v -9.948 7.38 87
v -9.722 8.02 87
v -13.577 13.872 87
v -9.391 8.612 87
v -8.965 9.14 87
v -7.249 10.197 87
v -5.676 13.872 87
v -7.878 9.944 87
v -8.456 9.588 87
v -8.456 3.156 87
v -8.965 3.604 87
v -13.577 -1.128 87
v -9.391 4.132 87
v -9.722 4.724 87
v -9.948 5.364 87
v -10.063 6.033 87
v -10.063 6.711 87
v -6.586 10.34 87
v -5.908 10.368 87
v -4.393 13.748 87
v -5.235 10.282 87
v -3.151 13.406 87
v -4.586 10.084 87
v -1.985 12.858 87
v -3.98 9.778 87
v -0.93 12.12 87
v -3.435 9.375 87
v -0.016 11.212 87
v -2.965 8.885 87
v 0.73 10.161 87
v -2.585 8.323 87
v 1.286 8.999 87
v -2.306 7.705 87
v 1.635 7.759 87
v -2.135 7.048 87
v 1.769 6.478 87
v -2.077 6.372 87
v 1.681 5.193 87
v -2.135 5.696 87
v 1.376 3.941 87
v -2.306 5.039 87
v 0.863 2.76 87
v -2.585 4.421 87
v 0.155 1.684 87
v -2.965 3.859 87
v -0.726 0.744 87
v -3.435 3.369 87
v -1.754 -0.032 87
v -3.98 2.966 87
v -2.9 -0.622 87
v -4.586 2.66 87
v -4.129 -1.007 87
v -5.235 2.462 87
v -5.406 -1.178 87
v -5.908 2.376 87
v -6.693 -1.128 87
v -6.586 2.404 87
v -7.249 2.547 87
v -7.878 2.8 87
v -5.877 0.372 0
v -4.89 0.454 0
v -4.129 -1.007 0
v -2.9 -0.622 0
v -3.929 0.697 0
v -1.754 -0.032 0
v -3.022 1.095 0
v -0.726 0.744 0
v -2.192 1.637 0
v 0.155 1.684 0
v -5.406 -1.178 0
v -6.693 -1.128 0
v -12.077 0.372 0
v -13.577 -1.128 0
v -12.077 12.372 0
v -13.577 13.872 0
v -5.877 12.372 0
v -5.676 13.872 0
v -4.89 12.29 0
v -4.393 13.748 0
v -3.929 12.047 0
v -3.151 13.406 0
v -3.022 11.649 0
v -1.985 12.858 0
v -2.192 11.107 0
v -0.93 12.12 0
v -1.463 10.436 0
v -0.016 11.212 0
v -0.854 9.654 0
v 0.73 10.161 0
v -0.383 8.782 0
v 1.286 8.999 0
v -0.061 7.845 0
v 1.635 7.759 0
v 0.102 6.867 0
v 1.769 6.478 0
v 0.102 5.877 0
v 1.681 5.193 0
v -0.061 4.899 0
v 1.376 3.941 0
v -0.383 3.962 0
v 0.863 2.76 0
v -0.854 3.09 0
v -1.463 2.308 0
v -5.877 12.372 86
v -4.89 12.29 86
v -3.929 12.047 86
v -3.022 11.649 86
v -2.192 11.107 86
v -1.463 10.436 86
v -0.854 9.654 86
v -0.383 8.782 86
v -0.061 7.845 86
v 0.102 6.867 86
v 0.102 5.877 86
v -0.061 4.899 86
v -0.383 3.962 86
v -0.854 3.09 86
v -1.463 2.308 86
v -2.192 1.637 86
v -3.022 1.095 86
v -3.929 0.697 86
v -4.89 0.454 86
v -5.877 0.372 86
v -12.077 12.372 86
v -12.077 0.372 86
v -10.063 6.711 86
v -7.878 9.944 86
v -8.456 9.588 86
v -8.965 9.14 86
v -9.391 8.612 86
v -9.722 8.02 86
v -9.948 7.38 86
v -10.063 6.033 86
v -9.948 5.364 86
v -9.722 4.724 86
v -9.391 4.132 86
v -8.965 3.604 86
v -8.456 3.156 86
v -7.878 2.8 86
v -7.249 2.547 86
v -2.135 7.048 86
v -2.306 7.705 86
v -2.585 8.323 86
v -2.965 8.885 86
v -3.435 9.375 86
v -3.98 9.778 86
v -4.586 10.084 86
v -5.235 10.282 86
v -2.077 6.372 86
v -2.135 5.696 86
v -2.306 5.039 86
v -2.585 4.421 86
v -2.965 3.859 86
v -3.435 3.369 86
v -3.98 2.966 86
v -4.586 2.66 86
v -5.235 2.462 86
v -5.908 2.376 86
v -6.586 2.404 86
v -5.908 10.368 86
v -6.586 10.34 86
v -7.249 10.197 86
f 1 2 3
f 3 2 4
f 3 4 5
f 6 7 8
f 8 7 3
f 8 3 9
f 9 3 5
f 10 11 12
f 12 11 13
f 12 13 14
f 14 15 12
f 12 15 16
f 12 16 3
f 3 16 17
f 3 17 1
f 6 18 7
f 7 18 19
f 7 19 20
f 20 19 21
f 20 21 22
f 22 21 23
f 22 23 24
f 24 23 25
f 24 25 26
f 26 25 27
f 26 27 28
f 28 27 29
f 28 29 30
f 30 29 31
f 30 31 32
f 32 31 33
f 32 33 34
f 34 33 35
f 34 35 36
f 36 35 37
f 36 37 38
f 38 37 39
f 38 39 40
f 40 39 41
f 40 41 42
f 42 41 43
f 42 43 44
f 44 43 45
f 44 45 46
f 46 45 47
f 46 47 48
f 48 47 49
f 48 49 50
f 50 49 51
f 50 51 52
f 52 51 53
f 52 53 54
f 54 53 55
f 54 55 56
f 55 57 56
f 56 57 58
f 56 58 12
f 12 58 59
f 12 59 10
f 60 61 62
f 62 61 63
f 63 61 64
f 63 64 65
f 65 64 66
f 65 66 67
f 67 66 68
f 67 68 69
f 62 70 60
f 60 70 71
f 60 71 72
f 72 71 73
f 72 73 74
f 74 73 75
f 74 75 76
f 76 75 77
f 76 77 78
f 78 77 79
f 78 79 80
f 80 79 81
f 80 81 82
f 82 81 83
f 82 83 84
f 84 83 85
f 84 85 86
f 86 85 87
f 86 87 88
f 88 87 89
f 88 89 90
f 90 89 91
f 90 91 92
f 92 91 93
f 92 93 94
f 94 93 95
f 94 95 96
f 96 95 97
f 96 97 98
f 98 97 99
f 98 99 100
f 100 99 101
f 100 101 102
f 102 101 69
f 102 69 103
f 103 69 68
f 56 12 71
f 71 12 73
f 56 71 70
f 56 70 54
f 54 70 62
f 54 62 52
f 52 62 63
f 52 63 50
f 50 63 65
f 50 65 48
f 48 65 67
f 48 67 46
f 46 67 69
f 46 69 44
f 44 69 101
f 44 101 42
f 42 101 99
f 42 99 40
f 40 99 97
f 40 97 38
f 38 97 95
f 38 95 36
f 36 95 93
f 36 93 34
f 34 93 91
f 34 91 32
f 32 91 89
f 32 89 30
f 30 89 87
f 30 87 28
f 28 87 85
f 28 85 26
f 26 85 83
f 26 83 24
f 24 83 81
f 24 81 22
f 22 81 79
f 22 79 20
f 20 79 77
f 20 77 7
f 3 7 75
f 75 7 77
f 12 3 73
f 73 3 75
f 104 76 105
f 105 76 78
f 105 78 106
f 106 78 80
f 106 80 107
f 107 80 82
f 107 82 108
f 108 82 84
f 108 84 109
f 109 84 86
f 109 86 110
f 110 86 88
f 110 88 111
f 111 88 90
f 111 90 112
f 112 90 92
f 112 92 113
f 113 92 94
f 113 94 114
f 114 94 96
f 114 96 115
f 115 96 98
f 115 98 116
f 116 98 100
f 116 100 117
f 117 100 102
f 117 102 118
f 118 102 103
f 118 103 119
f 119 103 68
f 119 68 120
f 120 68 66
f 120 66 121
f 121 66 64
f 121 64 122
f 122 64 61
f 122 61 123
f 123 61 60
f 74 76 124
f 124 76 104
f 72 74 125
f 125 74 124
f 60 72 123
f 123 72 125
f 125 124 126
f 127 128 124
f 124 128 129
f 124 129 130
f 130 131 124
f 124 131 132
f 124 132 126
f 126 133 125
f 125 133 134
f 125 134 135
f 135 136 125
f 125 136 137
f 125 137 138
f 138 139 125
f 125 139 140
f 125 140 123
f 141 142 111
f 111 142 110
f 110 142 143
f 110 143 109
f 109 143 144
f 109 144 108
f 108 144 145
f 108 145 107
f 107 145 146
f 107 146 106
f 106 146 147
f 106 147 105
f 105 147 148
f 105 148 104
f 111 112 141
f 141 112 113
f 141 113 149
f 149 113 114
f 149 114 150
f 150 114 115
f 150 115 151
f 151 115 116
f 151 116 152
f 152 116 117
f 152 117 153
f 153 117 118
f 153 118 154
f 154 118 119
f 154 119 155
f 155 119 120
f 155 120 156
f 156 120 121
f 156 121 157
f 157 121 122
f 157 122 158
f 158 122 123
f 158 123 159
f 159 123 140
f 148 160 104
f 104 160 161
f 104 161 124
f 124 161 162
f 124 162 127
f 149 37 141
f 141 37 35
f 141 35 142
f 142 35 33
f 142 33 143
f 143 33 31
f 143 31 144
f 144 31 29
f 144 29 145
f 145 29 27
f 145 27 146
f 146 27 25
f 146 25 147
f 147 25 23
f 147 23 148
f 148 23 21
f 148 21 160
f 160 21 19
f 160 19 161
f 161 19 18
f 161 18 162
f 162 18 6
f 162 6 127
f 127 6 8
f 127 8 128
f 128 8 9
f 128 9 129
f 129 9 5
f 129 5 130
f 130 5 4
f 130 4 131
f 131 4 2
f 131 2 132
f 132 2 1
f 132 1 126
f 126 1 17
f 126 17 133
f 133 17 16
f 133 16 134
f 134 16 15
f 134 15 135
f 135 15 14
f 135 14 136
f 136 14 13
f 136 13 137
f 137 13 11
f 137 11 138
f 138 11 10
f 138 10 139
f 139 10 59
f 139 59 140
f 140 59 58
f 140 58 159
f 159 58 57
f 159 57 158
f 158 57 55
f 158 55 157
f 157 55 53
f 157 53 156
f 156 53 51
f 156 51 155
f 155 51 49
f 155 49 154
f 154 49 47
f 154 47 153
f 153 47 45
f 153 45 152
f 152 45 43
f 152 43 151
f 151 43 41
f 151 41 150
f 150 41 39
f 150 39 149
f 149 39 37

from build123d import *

# Parameters (mm, degrees)
SALIENTE_EXTRUIR1_DEPTH = 87
SALIENTE_EXTRUIR2_START = -1
CROQUIS2_R              = 4
SALIENTE_EXTRUIR2_DEPTH = 1


with BuildPart() as part:
    # Croquis1 → Saliente-Extruir1 (new body)
    with BuildSketch(Plane.XY):
        with BuildLine():
            Line((-5.675682168, 13.871979869), (-13.577452672, 13.871979869))
            Line((-13.577452672, 13.871979869), (-13.577452672, -1.128020131))
            Line((-13.577452672, -1.128020131), (-6.693069658, -1.128020131))
            ThreePointArc((-6.693069658, -1.128020131), (1.75257721, 5.833649414), (-5.675682168, 13.871979869))
        make_face()
        with BuildLine():
            Line((-12.077452672, 12.371979869), (-5.877452672, 12.371979869))
            ThreePointArc((-5.877452672, 12.371979869), (0.122547328, 6.371979869), (-5.877452672, 0.371979869))
            Line((-5.877452672, 0.371979869), (-12.077452672, 0.371979869))
            Line((-12.077452672, 0.371979869), (-12.077452672, 12.371979869))
        make_face(mode=Mode.SUBTRACT)
    extrude(amount=SALIENTE_EXTRUIR1_DEPTH)

    # Croquis2 → Saliente-Extruir2 (add)
    with BuildSketch(Plane.XY.offset(87).offset(SALIENTE_EXTRUIR2_START)):
        with BuildLine():
            Line((-13.577452672, 13.871979869), (-13.577452672, -1.128020131))
            Line((-13.577452672, -1.128020131), (-4.825831505, -1.128020131))
            ThreePointArc((-4.825831505, -1.128020131), (1.757780912, 6.769060566), (-5.675682168, 13.871979869))
            Line((-5.675682168, 13.871979869), (-13.577452672, 13.871979869))
        make_face()
        with Locations((-6.077452672, 6.371979869)):
            Circle(CROQUIS2_R, mode=Mode.SUBTRACT)
    extrude(amount=SALIENTE_EXTRUIR2_DEPTH)


solid = part.part
